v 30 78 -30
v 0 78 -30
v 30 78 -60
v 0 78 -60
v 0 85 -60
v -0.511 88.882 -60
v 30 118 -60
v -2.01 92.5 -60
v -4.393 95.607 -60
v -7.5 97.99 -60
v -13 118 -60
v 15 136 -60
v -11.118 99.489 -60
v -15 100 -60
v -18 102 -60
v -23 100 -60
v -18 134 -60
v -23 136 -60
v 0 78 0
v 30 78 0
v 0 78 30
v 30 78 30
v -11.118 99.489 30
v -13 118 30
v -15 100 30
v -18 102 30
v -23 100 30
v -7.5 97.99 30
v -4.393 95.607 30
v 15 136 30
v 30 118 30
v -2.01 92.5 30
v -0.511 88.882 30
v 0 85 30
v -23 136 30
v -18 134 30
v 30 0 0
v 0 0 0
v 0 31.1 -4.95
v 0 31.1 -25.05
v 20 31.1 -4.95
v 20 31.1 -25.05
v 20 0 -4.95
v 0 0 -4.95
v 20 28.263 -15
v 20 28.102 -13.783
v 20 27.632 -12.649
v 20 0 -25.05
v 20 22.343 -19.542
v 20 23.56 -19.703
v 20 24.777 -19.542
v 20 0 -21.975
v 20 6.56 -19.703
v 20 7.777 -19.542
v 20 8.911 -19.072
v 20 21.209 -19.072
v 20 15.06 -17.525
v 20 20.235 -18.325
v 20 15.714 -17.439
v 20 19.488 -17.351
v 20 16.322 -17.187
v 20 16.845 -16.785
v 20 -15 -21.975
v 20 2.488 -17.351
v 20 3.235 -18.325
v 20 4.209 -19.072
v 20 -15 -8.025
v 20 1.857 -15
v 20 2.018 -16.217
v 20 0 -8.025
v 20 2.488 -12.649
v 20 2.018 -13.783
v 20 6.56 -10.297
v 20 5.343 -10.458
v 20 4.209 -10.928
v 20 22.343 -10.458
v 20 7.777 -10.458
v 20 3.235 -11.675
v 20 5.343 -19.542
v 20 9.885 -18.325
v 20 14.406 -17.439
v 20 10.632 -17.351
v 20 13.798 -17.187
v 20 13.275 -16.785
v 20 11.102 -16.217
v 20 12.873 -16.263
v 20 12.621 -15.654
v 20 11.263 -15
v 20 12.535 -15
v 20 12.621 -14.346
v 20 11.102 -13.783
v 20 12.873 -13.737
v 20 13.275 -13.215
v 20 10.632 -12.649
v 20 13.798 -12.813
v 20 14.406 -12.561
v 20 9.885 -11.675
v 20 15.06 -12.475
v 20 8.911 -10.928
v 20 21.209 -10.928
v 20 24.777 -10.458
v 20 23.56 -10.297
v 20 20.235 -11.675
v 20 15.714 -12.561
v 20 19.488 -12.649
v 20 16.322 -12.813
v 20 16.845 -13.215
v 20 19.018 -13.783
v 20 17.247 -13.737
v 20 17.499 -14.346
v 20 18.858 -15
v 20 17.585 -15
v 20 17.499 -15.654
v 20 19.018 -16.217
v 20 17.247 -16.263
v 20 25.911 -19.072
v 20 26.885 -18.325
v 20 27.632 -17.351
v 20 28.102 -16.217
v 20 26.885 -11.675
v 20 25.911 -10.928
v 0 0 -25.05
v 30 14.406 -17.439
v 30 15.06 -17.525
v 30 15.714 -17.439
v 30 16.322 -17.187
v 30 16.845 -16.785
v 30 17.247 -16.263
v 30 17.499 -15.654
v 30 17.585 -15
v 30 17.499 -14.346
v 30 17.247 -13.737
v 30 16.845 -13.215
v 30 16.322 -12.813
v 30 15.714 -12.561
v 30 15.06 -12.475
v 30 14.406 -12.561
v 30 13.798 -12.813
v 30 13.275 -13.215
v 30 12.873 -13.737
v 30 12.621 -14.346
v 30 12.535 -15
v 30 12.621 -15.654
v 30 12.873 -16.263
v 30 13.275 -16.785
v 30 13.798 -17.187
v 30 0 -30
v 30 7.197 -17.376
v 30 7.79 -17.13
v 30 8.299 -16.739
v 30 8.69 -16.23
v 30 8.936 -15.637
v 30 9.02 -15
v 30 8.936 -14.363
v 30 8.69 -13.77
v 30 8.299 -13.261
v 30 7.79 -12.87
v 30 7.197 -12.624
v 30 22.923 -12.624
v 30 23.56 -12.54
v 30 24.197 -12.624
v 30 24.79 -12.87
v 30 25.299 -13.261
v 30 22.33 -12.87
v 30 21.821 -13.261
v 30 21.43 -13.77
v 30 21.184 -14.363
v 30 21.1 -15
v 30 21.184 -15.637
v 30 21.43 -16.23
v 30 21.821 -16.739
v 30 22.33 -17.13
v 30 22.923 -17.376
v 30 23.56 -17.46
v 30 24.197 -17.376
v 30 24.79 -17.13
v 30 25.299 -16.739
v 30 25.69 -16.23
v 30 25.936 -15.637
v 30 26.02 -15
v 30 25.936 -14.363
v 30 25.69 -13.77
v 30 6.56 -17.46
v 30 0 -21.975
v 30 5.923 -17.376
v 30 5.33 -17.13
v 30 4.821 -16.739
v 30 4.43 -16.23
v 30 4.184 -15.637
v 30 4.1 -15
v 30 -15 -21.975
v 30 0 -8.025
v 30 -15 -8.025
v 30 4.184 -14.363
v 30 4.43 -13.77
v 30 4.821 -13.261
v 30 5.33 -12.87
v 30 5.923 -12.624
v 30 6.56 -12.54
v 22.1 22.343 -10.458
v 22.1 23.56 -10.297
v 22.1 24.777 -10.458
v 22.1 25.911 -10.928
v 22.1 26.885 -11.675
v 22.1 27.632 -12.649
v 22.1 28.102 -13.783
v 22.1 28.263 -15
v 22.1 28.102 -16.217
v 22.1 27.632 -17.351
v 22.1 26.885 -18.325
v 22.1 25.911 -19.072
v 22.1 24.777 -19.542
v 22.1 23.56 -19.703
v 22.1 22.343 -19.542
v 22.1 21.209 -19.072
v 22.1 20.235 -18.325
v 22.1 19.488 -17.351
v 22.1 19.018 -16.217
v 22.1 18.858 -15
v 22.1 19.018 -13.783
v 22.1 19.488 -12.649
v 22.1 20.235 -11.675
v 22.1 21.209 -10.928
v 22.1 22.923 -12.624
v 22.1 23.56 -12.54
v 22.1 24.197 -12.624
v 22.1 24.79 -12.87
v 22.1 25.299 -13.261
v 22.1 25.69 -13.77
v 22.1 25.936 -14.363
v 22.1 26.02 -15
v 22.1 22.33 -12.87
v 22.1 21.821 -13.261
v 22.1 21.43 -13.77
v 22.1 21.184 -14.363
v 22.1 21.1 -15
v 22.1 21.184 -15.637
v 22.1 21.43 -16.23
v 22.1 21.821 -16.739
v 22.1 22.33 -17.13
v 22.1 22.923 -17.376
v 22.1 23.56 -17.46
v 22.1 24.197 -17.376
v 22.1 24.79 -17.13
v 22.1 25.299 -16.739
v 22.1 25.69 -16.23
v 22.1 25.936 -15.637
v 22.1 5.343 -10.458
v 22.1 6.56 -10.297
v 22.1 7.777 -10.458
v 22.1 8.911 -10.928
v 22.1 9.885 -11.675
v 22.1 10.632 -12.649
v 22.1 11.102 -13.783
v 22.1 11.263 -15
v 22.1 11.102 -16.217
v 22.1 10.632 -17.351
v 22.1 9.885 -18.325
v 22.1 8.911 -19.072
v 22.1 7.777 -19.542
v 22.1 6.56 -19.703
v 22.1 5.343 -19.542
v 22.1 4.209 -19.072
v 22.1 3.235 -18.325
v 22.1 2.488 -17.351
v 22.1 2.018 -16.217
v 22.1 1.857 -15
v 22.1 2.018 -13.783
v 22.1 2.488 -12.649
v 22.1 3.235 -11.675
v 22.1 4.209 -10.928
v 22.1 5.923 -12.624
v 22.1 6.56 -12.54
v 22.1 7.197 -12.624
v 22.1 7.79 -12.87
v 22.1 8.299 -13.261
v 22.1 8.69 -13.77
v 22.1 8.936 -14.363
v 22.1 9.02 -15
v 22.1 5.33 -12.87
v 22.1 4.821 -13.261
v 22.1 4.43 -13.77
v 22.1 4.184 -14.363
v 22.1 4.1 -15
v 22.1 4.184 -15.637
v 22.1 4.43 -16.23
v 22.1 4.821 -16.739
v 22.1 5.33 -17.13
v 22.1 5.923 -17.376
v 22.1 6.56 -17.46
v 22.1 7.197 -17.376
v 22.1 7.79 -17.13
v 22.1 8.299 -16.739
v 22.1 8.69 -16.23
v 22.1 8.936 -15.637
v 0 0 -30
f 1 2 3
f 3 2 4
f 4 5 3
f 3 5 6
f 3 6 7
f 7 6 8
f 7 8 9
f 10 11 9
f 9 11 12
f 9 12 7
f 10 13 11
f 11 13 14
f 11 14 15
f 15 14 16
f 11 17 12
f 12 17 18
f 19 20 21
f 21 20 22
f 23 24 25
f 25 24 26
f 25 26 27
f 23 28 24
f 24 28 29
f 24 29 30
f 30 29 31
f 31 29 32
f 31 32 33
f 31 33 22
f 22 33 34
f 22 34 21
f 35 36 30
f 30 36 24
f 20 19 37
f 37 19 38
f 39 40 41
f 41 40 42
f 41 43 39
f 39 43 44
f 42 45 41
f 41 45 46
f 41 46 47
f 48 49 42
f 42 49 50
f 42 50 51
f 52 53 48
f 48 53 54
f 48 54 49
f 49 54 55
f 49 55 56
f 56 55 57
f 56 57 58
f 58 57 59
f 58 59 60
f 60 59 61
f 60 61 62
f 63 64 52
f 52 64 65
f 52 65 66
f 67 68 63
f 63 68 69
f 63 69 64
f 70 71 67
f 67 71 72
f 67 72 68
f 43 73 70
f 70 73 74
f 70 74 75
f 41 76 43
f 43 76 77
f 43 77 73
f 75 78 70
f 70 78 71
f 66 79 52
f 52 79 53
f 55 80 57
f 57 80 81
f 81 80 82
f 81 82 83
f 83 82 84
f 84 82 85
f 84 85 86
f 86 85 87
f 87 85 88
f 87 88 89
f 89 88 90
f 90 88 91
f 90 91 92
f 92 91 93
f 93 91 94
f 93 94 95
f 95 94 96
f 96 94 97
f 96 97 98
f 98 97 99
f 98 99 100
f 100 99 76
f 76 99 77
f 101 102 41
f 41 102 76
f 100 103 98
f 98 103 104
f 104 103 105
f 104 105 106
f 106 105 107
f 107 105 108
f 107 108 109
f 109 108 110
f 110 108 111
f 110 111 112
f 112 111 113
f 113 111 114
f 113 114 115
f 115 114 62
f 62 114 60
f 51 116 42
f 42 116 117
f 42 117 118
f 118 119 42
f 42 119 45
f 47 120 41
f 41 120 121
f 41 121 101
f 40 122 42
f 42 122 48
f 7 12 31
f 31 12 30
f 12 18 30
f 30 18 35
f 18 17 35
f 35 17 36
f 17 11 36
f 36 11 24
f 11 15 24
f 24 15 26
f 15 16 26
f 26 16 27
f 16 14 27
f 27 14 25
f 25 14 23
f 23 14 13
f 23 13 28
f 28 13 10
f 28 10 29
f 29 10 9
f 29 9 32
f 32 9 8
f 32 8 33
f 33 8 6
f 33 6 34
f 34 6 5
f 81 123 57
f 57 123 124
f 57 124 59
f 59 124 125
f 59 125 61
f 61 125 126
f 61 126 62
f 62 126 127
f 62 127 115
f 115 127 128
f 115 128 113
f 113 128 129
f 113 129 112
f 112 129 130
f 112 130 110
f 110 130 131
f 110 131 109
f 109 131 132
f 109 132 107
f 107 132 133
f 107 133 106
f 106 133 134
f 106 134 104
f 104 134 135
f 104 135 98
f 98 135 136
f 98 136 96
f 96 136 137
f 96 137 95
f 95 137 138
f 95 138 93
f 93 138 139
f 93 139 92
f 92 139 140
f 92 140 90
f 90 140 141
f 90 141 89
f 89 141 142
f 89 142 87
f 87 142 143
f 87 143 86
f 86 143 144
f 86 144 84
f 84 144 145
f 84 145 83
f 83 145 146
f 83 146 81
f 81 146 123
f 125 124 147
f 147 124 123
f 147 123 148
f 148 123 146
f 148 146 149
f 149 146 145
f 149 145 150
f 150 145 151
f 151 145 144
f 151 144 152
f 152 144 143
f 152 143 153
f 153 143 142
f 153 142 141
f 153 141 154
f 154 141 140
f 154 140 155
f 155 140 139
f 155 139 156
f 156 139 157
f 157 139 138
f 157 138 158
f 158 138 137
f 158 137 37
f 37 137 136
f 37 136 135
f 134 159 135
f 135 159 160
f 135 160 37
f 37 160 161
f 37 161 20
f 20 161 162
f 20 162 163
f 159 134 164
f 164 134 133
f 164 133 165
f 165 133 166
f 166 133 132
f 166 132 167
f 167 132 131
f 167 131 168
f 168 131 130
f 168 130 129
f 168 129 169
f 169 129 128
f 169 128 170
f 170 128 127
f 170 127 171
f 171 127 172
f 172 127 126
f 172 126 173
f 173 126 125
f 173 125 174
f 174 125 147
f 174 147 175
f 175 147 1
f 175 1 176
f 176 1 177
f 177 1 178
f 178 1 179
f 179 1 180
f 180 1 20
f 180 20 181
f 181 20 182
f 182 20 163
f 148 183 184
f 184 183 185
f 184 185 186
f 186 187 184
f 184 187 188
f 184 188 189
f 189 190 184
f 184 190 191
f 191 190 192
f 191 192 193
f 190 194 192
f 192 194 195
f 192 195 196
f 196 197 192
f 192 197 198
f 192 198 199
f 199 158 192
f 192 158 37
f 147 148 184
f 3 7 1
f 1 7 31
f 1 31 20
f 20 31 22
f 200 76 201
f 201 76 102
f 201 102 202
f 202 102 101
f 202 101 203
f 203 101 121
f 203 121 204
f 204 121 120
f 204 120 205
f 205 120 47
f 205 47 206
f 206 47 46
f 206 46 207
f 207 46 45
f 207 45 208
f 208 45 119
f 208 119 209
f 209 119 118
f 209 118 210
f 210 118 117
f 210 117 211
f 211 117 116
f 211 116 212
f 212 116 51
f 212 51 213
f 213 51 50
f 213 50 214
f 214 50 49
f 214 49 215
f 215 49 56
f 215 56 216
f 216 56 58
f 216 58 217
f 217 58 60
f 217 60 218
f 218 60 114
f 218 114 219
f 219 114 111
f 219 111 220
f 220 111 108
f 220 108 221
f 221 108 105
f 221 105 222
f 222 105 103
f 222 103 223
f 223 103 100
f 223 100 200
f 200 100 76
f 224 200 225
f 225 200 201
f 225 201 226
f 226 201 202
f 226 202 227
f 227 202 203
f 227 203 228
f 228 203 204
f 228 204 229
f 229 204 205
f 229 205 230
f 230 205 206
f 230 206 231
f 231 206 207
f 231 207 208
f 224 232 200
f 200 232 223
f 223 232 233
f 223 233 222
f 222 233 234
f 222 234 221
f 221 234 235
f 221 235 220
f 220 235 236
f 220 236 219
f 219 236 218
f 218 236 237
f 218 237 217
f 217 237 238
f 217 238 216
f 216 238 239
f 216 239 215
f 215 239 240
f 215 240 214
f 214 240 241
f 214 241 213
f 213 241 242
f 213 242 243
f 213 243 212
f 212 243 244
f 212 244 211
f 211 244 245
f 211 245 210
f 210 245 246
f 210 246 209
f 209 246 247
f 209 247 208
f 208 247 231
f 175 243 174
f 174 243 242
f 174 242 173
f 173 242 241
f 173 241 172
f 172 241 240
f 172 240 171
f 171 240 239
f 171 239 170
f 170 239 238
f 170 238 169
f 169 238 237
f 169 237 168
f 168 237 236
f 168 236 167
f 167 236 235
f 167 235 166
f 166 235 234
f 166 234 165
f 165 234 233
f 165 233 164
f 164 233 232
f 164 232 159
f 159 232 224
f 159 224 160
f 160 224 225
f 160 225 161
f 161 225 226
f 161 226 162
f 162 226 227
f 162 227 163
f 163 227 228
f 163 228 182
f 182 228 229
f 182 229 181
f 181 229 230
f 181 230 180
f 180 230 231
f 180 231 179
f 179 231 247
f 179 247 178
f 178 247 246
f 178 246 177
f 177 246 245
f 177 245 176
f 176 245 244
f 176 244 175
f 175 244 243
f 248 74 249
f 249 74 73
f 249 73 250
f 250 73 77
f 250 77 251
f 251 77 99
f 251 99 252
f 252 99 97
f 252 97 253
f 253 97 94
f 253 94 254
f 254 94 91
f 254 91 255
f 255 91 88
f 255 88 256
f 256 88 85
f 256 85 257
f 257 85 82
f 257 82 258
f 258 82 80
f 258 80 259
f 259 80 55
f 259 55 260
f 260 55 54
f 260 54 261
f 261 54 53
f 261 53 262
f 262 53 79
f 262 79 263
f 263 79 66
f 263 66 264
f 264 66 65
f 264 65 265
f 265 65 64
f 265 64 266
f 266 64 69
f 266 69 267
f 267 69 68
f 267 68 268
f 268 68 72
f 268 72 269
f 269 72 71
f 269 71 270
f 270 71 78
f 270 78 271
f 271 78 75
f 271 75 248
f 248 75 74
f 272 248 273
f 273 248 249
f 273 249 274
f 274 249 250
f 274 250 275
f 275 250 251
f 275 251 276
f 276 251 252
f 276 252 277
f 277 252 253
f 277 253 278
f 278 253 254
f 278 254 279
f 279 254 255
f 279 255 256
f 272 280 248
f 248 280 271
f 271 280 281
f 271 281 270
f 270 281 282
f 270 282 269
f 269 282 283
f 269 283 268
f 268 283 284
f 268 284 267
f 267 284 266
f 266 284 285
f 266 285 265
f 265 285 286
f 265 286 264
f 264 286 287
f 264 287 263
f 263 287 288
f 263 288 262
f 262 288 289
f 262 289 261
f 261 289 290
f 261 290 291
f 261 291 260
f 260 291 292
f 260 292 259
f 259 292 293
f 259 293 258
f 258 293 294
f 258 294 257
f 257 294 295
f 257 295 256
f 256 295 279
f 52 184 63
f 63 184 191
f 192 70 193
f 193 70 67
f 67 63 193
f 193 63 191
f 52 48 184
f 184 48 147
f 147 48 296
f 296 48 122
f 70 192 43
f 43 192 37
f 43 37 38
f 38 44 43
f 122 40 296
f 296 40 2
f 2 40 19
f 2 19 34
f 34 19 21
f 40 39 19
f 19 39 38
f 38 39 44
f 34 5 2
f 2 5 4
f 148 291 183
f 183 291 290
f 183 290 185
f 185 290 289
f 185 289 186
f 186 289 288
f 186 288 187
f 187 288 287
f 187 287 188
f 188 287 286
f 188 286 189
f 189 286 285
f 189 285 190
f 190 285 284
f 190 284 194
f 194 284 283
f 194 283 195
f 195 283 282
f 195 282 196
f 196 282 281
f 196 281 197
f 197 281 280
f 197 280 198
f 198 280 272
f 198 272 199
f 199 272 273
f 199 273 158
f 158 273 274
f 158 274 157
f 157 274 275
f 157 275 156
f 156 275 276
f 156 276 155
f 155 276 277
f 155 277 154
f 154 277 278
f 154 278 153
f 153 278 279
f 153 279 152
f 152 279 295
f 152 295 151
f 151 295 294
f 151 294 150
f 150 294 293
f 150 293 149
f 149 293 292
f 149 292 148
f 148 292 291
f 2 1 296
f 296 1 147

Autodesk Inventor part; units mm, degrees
ref_plane "YZ Plane" through (0, 0, 0) normal (1, 0, 0) x (0, 1, 0)
ref_plane "XZ Plane" through (0, 0, 0) normal (0, 1, 0) x (-1, 0, 0)
sketch "Sketch1" plane through (0, 0, 0) normal (0, 0, 1) x (1, 0, 0)
  line L0 (0, 0) -> (25, 0)
  line L1 (25, 0) -> (25, 40)
  line L2 (25, 40) -> (0, 40)
  line L3 (0, 40) -> (0, 0)
  dimension "d1" = 25
  dimension "d2" = 40
  dimension "d3" = 25
extrude "Extrusion1" add sketch "Sketch1" against normal blind 30
sketch "Sketch2" plane through (25, 0, 0) normal (1, 0, 0) x (0, 0, -1)
  line L0 (0, 0) -> (30, 0) projected
  circle A0 centre (15, 6.56) radius 2.46
extrude "Extrusion2" cut sketch "Sketch2" against normal blind 30
sketch "Sketch3" plane through (0, 0, 0) normal (-1, 0, 0) x (0, 0, 1)
  line L0 (0, 0) -> (-30, 0) projected
  line L1 (-25.05, 0) -> (-4.95, 0)
  line L2 (-4.95, 0) -> (-4.95, 33.12)
  line L3 (-4.95, 33.12) -> (-25.05, 33.12)
  line L4 (-25.05, 33.12) -> (-25.05, 0)
  dimension "d11" = 20.1
extrude "Extrusion3" cut sketch "Sketch3" against normal blind 20
sketch "Sketch4" plane through (0, 0, 0) normal (0, -1, 0) x (1, 0, 0)
  line L0 (20, -4.95) -> (20, -25.05) projected
  line L1 (20, -15) -> (25, -15)
  line L2 (25, 0) -> (25, -30) projected
  line L3 (20, -8.025) -> (25, -8.025)
  line L4 (25, -8.025) -> (25, -21.975)
  line L5 (25, -21.975) -> (20, -21.975)
  line L6 (20, -21.975) -> (20, -8.025)
  line L7 (20, -8.025) -> (25, -21.975) construction
  line L8 (25, -8.025) -> (20, -21.975) construction
  line L9 (25, -12.54) -> (25, -17.46) projected
  point P0 (0, 0)
  point P1 (22.5, -15)
  dimension "d14" = 13.95
extrude "Extrusion4" add sketch "Sketch4" along normal blind 15
sketch "Sketch5" plane through (20, 0, 0) normal (-1, 0, 0) x (0, 0, 1)
  circle A0 centre (-15, 6.56) radius 2.46 projected
  circle A1 centre (-15, 6.56) radius 4.7025
  circle A2 centre (-15, 6.56) radius 2.46 projected
  circle A3 centre (-15, 6.56) radius 2.46
  point P0 (0, 0)
  dimension "d17" = 9.405
extrude "Extrusion5" cut sketch "Sketch5" against normal blind 2.1
sketch "Sketch6" plane through (25, 0, 0) normal (1, 0, 0) x (0, 0, -1)
  circle A0 centre (15, 6.56) radius 4.7025 projected
  line L0 (15, 6.56) -> (15, 23.56)
  circle A1 centre (15, 23.56) radius 2.46
  point P0 (0, 0)
  dimension "d20" = 17
  dimension "d21" = 4.92
extrude "Extrusion6" cut sketch "Sketch6" against normal blind 10 contours A1
sketch "Sketch7" plane through (20, 0, 0) normal (-1, 0, 0) x (0, 0, 1)
  circle A0 centre (-15, 23.56) radius 2.46 projected
  circle A1 centre (-15, 23.56) radius 4.7025
  point P0 (0, 0)
  dimension "d24" = 9.405
extrude "Extrusion7" cut sketch "Sketch7" against normal blind 2.1
sketch "Sketch9" plane through (25, 0, 0) normal (1, 0, 0) x (0, 0, -1)
  circle A0 centre (15, 6.56) radius 2.46 projected
  circle A1 centre (15, 6.56) radius 2.46
  circle A2 centre (15, 23.56) radius 2.46 projected
  circle A3 centre (15, 23.56) radius 2.46
  line L0 (30, 40) -> (30, 0) projected
  line L1 (30, 0) -> (30, 40)
  line L2 (30, 40) -> (0, 40)
  line L3 (0, 40) -> (0, 0)
  line L4 (0, 0) -> (8.025, 0) projected
  line L5 (21.975, 0) -> (21.975, -15)
  line L6 (21.975, -15) -> (8.025, -15)
  line L7 (8.025, -15) -> (8.025, 0)
  line L8 (0, 0) -> (8.025, 0)
  line L9 (21.975, 0) -> (30, 0)
extrude "Extrusion8" add sketch "Sketch9" along normal blind 5
sketch "Sketch10" plane through (0, 40, 0) normal (0, 1, 0) x (1, 0, 0)
  line L0 (0, 30) -> (30, 30) projected
  line L1 (30, 0) -> (0, 0) projected
  line L2 (0, 30) -> (30, 30)
  line L3 (30, 30) -> (30, 0)
  line L4 (30, 0) -> (0, 0)
  line L5 (0, 0) -> (0, 30)
extrude "Extrusion9" add sketch "Sketch10" along normal blind 30
sketch "Sketch12" plane through (30, 0, 0) normal (1, 0, 0) x (0, 0, -1)
  circle A0 centre (15, 6.56) radius 2.46 projected
  line L0 (15, 6.56) -> (15, 15.06)
  circle A1 centre (15, 15.06) radius 2.525
  point P0 (0, 0)
  dimension "d31" = 8.5
  dimension "d33" = 5.05
extrude "Extrusion10" cut sketch "Sketch12" against normal blind 30 contours A1
sketch "Sketch14" plane through (0, 0, 0) normal (0, 0, 1) x (1, 0, 0)
  line L0 (30, 70) -> (0, 70) projected
  line L1 (0, 70) -> (0, 85)
  line L2 (-15, 100) -> (-23, 100)
  line L3 (30, 0) -> (30, 70) projected
  line L4 (30, 118) -> (30, 70)
  arc A0 (0, 85) -> (-15, 100) centre (-15, 85) ccw
  line L5 (30, 105) -> (30, 100)
  line L6 (-18, 134) -> (-23, 136)
  line L7 (-18, 102) -> (-23, 100)
  line L8 (-18, 102) -> (-13, 118)
  line L9 (-13, 118) -> (-18, 134)
  line L10 (15, 136) -> (30, 118)
  line L11 (-23, 136) -> (15, 136)
  point P0 (0, 0)
  point P1 (0, 100)
  dimension "d47" = 30
  dimension "d54" = 15
extrude "Extrusion12" add sketch "Sketch14" against normal blind 30
sketch "Sketch15" plane through (0, 0, -25.05) normal (-1, 0, 0) x (0, 0, 1)
  line L0 (0, 33.12) -> (20.1, 33.12) projected
  line L1 (20.1, 33.12) -> (20.1, 0) projected
  line L2 (0, 33.12) -> (20.1, 33.12)
  line L3 (20.1, 33.12) -> (20.1, 31.1)
  line L4 (20.1, 31.1) -> (0, 31.1)
  line L5 (0, 31.1) -> (0, 33.12)
  point P0 (25.05, 0)
  dimension "d57" = 2.02
extrude "Extrusion13" add sketch "Sketch15" against normal blind 20
sketch "Sketch22" plane through (0, 0, 0) normal (0, 0, 1) x (1, 0, 0)
  line L0 (-15, 100) -> (-23, 100) projected
  line L1 (-15, 100) -> (-23, 100)
  line L2 (-23, 100) -> (-18, 102) projected
  line L3 (-23, 100) -> (-18, 102)
  line L4 (-18, 102) -> (-13, 118) projected
  line L5 (-18, 102) -> (-13, 118)
  line L6 (-13, 118) -> (-18, 134) projected
  line L7 (-13, 118) -> (-18, 134)
  line L8 (-18, 134) -> (-23, 136) projected
  line L9 (-18, 134) -> (-23, 136)
  line L10 (-23, 136) -> (15, 136) projected
  line L11 (-23, 136) -> (15, 136)
  line L12 (15, 136) -> (30, 118) projected
  line L13 (15, 136) -> (30, 118)
  line L14 (30, 118) -> (30, 78)
  line L15 (30, 0) -> (30, 118) projected
  line L16 (30, 78) -> (0, 78)
  arc A0 (0, 85) -> (-15, 100) centre (-15, 85) ccw projected
  line L17 (0, 78) -> (0, 85)
  arc A1 (0, 85) -> (-15, 100) centre (-15, 85) ccw
  point P0 (0, 0)
  dimension "d82" = 40
extrude "Extrusion14" add sketch "Sketch22" along normal blind 30
ref_plane "Work Plane1" through (0, 0, -15) normal (0, 0, 1) x (1, 0, 0)
mirror "Mirror1" about plane through (0, 0, -15) normal (0, 0, 1) of "Extrusion14"
properties part number "rec_a_32mm_x_90mm"
